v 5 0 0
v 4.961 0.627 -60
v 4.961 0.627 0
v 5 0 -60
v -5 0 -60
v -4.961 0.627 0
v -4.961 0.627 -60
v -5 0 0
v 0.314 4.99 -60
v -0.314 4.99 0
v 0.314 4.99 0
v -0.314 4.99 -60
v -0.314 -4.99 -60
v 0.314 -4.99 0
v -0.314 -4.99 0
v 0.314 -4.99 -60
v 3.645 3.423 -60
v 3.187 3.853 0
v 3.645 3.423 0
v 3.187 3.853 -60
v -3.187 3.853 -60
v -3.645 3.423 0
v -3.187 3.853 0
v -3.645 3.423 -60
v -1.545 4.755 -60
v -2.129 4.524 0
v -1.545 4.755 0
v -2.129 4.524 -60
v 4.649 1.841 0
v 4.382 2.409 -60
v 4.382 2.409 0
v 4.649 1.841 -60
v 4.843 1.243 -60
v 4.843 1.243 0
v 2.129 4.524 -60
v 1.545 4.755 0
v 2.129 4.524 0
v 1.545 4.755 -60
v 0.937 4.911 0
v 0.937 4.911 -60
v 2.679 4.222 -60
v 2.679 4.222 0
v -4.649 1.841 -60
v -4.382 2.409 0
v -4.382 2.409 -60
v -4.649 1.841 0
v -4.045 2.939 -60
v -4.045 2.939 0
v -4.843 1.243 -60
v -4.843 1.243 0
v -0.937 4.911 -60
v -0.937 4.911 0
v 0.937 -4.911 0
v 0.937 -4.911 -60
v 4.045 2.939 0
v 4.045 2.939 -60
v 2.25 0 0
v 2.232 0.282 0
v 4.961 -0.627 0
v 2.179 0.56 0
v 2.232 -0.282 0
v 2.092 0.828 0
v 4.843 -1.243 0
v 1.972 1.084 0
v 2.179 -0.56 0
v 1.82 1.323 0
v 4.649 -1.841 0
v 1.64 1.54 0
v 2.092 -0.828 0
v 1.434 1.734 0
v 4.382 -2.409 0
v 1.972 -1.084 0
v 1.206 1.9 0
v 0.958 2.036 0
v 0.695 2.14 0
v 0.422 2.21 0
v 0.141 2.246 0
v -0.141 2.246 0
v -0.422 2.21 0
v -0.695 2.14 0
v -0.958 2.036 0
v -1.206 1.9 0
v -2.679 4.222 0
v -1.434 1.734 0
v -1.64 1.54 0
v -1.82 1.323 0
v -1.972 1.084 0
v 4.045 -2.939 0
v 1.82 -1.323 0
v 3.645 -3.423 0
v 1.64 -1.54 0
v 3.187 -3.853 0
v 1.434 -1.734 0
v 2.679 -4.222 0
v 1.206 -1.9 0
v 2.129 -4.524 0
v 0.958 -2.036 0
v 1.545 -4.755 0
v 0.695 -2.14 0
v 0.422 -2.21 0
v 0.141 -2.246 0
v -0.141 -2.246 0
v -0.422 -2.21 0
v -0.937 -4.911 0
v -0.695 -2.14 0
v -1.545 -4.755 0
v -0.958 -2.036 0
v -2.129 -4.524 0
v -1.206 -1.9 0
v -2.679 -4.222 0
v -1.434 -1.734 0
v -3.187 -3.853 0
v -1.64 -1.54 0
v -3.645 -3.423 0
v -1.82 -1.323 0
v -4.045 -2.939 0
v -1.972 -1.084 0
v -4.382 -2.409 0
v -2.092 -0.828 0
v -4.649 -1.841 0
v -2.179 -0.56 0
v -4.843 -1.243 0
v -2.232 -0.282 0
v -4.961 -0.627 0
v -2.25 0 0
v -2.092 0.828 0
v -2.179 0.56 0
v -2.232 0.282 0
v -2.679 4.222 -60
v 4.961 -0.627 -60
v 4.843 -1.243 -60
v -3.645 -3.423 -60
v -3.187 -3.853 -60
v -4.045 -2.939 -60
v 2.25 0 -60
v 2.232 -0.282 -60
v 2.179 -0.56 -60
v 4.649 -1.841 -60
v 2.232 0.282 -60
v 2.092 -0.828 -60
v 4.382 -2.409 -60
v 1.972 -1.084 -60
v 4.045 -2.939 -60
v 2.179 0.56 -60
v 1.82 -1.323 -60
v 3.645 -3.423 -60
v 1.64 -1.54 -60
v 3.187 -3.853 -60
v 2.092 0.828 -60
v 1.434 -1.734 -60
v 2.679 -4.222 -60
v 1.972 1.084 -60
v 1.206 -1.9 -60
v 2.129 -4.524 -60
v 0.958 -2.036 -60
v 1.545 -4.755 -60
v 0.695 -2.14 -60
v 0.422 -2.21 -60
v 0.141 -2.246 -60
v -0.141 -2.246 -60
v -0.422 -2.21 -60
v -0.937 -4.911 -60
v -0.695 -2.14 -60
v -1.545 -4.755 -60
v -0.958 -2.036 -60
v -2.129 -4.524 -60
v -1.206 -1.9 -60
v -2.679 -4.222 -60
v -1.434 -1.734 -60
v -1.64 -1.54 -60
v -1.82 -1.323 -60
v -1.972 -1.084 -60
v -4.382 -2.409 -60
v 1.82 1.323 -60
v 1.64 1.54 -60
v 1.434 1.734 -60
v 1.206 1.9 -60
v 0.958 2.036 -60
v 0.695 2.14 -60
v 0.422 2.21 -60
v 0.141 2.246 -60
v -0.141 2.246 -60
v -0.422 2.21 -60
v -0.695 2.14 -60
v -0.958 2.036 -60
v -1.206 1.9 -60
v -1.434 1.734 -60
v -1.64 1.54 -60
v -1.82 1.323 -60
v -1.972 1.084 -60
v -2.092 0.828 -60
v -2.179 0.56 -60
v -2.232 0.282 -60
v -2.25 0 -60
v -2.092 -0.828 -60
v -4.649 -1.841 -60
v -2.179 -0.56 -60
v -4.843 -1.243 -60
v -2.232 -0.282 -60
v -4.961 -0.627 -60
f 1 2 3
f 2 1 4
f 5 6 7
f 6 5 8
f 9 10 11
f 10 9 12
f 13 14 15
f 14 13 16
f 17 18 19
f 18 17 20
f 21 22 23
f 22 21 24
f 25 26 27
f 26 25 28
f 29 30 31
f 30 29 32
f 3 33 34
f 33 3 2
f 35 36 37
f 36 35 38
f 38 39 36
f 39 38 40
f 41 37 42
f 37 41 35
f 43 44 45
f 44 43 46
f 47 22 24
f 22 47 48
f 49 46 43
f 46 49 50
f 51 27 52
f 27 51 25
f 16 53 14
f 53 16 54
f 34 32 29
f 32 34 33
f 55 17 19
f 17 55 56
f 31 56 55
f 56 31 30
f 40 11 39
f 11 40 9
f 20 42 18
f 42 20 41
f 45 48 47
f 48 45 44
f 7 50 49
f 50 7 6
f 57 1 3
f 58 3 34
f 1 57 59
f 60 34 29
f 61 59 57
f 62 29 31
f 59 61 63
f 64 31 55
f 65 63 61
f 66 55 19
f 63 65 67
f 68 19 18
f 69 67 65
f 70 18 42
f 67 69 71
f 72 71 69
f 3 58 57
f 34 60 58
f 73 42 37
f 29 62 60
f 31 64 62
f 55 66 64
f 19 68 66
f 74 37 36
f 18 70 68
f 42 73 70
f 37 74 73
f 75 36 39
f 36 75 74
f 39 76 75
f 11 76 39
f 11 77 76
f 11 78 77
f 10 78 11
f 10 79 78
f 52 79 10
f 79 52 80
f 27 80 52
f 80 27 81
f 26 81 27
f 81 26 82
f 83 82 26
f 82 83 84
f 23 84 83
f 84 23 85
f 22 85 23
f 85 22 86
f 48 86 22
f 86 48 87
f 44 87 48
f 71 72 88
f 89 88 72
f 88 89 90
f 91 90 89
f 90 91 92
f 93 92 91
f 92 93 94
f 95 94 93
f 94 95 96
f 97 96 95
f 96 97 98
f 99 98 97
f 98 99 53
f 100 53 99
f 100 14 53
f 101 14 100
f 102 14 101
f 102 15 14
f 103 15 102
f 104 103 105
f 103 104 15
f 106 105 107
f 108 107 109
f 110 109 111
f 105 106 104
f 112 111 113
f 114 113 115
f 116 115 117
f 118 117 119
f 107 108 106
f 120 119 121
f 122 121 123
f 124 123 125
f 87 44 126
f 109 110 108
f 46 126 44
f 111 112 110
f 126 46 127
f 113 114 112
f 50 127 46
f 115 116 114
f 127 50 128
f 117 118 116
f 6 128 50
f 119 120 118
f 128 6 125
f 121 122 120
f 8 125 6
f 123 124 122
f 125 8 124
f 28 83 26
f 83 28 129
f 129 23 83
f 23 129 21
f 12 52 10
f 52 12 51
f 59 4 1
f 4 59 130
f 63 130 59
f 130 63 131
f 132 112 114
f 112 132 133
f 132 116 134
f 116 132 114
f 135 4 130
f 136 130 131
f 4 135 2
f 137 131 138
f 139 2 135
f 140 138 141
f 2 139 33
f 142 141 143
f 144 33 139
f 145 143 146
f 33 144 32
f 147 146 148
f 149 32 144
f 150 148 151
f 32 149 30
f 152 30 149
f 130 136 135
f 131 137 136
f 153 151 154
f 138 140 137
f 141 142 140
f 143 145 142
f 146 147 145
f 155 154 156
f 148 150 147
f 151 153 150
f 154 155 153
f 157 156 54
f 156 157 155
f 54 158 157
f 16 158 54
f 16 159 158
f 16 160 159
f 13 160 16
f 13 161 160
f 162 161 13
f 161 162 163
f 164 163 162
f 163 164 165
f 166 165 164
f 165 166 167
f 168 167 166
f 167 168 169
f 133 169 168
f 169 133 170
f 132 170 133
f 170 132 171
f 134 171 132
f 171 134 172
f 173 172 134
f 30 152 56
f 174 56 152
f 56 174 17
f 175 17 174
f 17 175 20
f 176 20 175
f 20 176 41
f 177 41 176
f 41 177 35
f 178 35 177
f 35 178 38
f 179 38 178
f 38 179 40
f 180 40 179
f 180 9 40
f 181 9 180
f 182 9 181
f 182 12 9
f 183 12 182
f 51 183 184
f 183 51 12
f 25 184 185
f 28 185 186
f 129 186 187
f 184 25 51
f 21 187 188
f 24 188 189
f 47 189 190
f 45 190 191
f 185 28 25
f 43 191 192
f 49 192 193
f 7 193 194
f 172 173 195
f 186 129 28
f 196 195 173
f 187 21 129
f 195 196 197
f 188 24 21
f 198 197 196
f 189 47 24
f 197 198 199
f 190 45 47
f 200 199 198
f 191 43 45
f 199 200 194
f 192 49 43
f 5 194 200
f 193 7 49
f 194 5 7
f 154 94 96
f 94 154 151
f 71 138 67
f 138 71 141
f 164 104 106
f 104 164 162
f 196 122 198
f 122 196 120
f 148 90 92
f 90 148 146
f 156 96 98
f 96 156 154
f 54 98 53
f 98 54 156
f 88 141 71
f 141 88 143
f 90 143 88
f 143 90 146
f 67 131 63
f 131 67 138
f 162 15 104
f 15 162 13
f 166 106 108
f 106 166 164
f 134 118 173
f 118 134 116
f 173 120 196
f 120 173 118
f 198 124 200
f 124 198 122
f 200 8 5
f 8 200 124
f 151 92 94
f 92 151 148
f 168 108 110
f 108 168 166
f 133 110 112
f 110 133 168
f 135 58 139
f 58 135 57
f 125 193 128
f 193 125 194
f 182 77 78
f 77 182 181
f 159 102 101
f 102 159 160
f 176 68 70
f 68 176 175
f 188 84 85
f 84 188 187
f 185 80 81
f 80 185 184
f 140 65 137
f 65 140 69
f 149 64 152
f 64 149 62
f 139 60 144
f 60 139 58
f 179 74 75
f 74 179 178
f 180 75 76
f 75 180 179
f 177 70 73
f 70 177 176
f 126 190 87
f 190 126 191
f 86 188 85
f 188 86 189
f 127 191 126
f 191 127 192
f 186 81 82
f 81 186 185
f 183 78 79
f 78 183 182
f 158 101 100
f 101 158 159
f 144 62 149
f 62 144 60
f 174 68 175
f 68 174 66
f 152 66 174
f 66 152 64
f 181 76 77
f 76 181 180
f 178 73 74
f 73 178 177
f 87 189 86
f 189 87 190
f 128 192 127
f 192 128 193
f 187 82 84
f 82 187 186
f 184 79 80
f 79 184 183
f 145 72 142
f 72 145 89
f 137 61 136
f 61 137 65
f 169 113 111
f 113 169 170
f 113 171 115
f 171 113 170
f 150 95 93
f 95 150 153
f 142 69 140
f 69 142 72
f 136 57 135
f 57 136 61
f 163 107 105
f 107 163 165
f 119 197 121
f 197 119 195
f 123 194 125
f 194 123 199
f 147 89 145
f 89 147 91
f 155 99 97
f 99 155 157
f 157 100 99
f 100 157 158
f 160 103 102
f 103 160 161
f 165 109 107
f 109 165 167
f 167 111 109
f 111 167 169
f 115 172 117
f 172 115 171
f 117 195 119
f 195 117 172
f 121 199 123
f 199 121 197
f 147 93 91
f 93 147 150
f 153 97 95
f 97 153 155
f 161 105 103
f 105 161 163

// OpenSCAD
$fn = 50;


difference() {
	union() {
		translate(v = [0, 0, -60.0000000000]) {
			cylinder(h = 60, r = 5.0000000000);
		}
		cylinder(h = 0, r = 8.0000000000);
	}
	union() {
		#translate(v = [0, 0, -60]) {
			cylinder(h = 60, r = 2.2500000000);
		}
	}
}
